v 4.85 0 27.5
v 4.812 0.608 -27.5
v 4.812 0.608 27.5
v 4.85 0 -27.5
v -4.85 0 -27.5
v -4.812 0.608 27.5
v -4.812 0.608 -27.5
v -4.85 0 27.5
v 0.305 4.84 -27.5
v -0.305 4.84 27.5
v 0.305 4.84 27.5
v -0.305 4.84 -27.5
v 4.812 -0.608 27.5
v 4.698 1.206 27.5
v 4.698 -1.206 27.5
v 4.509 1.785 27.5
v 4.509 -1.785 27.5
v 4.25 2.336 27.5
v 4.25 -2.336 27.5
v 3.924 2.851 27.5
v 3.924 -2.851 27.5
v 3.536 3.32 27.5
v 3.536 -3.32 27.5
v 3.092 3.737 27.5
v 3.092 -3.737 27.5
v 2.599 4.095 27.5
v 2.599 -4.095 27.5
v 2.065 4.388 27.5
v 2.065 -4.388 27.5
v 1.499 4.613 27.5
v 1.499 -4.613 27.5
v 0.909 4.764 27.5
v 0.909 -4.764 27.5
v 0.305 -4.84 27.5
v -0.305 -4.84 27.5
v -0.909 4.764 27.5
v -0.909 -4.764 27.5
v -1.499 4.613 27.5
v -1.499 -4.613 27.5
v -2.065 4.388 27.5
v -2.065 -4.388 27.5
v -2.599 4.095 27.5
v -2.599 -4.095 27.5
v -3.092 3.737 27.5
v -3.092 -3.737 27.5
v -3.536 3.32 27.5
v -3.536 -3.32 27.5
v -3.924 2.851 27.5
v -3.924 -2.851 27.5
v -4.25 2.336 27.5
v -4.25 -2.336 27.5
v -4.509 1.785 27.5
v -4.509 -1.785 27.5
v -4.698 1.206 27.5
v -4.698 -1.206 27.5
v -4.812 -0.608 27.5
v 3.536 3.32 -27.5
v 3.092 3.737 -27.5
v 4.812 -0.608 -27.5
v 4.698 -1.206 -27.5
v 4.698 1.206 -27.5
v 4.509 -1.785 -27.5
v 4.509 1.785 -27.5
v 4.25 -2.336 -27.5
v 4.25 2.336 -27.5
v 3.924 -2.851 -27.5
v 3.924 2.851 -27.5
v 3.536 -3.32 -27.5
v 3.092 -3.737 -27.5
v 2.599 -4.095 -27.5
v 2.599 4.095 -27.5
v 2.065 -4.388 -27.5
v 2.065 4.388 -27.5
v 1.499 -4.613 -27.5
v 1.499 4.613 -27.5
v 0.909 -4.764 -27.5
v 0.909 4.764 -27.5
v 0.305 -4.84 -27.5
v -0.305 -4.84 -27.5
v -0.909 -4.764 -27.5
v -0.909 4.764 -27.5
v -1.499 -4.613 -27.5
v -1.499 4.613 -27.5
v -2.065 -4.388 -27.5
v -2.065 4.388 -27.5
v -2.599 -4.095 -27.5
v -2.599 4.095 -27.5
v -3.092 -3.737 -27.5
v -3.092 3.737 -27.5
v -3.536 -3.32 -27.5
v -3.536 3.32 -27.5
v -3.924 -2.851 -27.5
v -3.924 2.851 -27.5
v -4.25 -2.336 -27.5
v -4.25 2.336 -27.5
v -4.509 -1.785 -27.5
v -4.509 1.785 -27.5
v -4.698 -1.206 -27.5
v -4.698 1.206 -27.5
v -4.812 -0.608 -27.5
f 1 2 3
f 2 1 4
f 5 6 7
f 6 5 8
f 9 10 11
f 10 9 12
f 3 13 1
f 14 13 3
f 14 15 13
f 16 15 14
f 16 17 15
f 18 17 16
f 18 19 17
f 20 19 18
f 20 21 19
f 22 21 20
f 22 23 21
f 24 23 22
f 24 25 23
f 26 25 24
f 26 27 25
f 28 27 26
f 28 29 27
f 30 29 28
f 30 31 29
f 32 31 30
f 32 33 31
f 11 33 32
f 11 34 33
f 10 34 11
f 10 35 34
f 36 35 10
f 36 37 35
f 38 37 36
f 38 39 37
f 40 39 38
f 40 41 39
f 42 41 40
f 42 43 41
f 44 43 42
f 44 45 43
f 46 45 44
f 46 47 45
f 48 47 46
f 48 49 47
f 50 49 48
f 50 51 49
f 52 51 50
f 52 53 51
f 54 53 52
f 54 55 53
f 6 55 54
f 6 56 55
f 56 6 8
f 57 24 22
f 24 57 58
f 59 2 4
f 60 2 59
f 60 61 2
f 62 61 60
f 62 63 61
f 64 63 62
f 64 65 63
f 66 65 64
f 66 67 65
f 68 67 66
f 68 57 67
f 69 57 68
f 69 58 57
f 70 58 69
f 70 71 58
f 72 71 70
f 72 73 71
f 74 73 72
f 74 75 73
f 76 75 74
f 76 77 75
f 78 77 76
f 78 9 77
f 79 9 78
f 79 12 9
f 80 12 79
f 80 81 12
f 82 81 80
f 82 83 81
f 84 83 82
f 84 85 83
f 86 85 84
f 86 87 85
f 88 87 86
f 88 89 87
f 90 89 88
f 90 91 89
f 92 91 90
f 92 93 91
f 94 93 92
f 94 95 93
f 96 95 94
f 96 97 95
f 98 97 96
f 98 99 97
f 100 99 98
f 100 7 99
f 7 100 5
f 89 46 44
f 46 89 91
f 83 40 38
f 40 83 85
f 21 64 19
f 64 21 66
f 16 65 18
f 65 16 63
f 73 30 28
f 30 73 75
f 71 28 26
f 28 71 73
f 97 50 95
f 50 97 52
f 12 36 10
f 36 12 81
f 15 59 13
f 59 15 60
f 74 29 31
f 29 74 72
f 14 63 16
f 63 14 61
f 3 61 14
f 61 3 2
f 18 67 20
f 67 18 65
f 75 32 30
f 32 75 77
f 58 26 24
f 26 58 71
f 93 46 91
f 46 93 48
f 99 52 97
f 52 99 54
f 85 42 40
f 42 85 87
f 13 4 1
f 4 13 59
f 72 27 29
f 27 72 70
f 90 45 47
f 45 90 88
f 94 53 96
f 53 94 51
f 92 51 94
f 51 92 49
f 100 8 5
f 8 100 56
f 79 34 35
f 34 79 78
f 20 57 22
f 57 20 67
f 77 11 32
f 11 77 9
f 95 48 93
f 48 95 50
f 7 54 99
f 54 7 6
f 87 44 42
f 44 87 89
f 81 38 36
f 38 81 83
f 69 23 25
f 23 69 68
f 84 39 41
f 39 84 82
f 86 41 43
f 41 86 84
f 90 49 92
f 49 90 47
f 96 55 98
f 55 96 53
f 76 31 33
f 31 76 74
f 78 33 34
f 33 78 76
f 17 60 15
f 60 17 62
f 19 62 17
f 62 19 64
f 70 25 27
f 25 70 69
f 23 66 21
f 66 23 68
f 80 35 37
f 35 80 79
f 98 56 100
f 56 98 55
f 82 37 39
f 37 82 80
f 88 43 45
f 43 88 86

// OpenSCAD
$fn = 50;


difference() {
	union() {
		translate(v = [0, 0, -27.5000000000]) {
			cylinder(h = 55, r = 4.8500000000);
		}
	}
	union() {
		translate(v = [0, 0, -100.0000000000]) {
			cylinder(h = 200, r = 0);
		}
	}
}
